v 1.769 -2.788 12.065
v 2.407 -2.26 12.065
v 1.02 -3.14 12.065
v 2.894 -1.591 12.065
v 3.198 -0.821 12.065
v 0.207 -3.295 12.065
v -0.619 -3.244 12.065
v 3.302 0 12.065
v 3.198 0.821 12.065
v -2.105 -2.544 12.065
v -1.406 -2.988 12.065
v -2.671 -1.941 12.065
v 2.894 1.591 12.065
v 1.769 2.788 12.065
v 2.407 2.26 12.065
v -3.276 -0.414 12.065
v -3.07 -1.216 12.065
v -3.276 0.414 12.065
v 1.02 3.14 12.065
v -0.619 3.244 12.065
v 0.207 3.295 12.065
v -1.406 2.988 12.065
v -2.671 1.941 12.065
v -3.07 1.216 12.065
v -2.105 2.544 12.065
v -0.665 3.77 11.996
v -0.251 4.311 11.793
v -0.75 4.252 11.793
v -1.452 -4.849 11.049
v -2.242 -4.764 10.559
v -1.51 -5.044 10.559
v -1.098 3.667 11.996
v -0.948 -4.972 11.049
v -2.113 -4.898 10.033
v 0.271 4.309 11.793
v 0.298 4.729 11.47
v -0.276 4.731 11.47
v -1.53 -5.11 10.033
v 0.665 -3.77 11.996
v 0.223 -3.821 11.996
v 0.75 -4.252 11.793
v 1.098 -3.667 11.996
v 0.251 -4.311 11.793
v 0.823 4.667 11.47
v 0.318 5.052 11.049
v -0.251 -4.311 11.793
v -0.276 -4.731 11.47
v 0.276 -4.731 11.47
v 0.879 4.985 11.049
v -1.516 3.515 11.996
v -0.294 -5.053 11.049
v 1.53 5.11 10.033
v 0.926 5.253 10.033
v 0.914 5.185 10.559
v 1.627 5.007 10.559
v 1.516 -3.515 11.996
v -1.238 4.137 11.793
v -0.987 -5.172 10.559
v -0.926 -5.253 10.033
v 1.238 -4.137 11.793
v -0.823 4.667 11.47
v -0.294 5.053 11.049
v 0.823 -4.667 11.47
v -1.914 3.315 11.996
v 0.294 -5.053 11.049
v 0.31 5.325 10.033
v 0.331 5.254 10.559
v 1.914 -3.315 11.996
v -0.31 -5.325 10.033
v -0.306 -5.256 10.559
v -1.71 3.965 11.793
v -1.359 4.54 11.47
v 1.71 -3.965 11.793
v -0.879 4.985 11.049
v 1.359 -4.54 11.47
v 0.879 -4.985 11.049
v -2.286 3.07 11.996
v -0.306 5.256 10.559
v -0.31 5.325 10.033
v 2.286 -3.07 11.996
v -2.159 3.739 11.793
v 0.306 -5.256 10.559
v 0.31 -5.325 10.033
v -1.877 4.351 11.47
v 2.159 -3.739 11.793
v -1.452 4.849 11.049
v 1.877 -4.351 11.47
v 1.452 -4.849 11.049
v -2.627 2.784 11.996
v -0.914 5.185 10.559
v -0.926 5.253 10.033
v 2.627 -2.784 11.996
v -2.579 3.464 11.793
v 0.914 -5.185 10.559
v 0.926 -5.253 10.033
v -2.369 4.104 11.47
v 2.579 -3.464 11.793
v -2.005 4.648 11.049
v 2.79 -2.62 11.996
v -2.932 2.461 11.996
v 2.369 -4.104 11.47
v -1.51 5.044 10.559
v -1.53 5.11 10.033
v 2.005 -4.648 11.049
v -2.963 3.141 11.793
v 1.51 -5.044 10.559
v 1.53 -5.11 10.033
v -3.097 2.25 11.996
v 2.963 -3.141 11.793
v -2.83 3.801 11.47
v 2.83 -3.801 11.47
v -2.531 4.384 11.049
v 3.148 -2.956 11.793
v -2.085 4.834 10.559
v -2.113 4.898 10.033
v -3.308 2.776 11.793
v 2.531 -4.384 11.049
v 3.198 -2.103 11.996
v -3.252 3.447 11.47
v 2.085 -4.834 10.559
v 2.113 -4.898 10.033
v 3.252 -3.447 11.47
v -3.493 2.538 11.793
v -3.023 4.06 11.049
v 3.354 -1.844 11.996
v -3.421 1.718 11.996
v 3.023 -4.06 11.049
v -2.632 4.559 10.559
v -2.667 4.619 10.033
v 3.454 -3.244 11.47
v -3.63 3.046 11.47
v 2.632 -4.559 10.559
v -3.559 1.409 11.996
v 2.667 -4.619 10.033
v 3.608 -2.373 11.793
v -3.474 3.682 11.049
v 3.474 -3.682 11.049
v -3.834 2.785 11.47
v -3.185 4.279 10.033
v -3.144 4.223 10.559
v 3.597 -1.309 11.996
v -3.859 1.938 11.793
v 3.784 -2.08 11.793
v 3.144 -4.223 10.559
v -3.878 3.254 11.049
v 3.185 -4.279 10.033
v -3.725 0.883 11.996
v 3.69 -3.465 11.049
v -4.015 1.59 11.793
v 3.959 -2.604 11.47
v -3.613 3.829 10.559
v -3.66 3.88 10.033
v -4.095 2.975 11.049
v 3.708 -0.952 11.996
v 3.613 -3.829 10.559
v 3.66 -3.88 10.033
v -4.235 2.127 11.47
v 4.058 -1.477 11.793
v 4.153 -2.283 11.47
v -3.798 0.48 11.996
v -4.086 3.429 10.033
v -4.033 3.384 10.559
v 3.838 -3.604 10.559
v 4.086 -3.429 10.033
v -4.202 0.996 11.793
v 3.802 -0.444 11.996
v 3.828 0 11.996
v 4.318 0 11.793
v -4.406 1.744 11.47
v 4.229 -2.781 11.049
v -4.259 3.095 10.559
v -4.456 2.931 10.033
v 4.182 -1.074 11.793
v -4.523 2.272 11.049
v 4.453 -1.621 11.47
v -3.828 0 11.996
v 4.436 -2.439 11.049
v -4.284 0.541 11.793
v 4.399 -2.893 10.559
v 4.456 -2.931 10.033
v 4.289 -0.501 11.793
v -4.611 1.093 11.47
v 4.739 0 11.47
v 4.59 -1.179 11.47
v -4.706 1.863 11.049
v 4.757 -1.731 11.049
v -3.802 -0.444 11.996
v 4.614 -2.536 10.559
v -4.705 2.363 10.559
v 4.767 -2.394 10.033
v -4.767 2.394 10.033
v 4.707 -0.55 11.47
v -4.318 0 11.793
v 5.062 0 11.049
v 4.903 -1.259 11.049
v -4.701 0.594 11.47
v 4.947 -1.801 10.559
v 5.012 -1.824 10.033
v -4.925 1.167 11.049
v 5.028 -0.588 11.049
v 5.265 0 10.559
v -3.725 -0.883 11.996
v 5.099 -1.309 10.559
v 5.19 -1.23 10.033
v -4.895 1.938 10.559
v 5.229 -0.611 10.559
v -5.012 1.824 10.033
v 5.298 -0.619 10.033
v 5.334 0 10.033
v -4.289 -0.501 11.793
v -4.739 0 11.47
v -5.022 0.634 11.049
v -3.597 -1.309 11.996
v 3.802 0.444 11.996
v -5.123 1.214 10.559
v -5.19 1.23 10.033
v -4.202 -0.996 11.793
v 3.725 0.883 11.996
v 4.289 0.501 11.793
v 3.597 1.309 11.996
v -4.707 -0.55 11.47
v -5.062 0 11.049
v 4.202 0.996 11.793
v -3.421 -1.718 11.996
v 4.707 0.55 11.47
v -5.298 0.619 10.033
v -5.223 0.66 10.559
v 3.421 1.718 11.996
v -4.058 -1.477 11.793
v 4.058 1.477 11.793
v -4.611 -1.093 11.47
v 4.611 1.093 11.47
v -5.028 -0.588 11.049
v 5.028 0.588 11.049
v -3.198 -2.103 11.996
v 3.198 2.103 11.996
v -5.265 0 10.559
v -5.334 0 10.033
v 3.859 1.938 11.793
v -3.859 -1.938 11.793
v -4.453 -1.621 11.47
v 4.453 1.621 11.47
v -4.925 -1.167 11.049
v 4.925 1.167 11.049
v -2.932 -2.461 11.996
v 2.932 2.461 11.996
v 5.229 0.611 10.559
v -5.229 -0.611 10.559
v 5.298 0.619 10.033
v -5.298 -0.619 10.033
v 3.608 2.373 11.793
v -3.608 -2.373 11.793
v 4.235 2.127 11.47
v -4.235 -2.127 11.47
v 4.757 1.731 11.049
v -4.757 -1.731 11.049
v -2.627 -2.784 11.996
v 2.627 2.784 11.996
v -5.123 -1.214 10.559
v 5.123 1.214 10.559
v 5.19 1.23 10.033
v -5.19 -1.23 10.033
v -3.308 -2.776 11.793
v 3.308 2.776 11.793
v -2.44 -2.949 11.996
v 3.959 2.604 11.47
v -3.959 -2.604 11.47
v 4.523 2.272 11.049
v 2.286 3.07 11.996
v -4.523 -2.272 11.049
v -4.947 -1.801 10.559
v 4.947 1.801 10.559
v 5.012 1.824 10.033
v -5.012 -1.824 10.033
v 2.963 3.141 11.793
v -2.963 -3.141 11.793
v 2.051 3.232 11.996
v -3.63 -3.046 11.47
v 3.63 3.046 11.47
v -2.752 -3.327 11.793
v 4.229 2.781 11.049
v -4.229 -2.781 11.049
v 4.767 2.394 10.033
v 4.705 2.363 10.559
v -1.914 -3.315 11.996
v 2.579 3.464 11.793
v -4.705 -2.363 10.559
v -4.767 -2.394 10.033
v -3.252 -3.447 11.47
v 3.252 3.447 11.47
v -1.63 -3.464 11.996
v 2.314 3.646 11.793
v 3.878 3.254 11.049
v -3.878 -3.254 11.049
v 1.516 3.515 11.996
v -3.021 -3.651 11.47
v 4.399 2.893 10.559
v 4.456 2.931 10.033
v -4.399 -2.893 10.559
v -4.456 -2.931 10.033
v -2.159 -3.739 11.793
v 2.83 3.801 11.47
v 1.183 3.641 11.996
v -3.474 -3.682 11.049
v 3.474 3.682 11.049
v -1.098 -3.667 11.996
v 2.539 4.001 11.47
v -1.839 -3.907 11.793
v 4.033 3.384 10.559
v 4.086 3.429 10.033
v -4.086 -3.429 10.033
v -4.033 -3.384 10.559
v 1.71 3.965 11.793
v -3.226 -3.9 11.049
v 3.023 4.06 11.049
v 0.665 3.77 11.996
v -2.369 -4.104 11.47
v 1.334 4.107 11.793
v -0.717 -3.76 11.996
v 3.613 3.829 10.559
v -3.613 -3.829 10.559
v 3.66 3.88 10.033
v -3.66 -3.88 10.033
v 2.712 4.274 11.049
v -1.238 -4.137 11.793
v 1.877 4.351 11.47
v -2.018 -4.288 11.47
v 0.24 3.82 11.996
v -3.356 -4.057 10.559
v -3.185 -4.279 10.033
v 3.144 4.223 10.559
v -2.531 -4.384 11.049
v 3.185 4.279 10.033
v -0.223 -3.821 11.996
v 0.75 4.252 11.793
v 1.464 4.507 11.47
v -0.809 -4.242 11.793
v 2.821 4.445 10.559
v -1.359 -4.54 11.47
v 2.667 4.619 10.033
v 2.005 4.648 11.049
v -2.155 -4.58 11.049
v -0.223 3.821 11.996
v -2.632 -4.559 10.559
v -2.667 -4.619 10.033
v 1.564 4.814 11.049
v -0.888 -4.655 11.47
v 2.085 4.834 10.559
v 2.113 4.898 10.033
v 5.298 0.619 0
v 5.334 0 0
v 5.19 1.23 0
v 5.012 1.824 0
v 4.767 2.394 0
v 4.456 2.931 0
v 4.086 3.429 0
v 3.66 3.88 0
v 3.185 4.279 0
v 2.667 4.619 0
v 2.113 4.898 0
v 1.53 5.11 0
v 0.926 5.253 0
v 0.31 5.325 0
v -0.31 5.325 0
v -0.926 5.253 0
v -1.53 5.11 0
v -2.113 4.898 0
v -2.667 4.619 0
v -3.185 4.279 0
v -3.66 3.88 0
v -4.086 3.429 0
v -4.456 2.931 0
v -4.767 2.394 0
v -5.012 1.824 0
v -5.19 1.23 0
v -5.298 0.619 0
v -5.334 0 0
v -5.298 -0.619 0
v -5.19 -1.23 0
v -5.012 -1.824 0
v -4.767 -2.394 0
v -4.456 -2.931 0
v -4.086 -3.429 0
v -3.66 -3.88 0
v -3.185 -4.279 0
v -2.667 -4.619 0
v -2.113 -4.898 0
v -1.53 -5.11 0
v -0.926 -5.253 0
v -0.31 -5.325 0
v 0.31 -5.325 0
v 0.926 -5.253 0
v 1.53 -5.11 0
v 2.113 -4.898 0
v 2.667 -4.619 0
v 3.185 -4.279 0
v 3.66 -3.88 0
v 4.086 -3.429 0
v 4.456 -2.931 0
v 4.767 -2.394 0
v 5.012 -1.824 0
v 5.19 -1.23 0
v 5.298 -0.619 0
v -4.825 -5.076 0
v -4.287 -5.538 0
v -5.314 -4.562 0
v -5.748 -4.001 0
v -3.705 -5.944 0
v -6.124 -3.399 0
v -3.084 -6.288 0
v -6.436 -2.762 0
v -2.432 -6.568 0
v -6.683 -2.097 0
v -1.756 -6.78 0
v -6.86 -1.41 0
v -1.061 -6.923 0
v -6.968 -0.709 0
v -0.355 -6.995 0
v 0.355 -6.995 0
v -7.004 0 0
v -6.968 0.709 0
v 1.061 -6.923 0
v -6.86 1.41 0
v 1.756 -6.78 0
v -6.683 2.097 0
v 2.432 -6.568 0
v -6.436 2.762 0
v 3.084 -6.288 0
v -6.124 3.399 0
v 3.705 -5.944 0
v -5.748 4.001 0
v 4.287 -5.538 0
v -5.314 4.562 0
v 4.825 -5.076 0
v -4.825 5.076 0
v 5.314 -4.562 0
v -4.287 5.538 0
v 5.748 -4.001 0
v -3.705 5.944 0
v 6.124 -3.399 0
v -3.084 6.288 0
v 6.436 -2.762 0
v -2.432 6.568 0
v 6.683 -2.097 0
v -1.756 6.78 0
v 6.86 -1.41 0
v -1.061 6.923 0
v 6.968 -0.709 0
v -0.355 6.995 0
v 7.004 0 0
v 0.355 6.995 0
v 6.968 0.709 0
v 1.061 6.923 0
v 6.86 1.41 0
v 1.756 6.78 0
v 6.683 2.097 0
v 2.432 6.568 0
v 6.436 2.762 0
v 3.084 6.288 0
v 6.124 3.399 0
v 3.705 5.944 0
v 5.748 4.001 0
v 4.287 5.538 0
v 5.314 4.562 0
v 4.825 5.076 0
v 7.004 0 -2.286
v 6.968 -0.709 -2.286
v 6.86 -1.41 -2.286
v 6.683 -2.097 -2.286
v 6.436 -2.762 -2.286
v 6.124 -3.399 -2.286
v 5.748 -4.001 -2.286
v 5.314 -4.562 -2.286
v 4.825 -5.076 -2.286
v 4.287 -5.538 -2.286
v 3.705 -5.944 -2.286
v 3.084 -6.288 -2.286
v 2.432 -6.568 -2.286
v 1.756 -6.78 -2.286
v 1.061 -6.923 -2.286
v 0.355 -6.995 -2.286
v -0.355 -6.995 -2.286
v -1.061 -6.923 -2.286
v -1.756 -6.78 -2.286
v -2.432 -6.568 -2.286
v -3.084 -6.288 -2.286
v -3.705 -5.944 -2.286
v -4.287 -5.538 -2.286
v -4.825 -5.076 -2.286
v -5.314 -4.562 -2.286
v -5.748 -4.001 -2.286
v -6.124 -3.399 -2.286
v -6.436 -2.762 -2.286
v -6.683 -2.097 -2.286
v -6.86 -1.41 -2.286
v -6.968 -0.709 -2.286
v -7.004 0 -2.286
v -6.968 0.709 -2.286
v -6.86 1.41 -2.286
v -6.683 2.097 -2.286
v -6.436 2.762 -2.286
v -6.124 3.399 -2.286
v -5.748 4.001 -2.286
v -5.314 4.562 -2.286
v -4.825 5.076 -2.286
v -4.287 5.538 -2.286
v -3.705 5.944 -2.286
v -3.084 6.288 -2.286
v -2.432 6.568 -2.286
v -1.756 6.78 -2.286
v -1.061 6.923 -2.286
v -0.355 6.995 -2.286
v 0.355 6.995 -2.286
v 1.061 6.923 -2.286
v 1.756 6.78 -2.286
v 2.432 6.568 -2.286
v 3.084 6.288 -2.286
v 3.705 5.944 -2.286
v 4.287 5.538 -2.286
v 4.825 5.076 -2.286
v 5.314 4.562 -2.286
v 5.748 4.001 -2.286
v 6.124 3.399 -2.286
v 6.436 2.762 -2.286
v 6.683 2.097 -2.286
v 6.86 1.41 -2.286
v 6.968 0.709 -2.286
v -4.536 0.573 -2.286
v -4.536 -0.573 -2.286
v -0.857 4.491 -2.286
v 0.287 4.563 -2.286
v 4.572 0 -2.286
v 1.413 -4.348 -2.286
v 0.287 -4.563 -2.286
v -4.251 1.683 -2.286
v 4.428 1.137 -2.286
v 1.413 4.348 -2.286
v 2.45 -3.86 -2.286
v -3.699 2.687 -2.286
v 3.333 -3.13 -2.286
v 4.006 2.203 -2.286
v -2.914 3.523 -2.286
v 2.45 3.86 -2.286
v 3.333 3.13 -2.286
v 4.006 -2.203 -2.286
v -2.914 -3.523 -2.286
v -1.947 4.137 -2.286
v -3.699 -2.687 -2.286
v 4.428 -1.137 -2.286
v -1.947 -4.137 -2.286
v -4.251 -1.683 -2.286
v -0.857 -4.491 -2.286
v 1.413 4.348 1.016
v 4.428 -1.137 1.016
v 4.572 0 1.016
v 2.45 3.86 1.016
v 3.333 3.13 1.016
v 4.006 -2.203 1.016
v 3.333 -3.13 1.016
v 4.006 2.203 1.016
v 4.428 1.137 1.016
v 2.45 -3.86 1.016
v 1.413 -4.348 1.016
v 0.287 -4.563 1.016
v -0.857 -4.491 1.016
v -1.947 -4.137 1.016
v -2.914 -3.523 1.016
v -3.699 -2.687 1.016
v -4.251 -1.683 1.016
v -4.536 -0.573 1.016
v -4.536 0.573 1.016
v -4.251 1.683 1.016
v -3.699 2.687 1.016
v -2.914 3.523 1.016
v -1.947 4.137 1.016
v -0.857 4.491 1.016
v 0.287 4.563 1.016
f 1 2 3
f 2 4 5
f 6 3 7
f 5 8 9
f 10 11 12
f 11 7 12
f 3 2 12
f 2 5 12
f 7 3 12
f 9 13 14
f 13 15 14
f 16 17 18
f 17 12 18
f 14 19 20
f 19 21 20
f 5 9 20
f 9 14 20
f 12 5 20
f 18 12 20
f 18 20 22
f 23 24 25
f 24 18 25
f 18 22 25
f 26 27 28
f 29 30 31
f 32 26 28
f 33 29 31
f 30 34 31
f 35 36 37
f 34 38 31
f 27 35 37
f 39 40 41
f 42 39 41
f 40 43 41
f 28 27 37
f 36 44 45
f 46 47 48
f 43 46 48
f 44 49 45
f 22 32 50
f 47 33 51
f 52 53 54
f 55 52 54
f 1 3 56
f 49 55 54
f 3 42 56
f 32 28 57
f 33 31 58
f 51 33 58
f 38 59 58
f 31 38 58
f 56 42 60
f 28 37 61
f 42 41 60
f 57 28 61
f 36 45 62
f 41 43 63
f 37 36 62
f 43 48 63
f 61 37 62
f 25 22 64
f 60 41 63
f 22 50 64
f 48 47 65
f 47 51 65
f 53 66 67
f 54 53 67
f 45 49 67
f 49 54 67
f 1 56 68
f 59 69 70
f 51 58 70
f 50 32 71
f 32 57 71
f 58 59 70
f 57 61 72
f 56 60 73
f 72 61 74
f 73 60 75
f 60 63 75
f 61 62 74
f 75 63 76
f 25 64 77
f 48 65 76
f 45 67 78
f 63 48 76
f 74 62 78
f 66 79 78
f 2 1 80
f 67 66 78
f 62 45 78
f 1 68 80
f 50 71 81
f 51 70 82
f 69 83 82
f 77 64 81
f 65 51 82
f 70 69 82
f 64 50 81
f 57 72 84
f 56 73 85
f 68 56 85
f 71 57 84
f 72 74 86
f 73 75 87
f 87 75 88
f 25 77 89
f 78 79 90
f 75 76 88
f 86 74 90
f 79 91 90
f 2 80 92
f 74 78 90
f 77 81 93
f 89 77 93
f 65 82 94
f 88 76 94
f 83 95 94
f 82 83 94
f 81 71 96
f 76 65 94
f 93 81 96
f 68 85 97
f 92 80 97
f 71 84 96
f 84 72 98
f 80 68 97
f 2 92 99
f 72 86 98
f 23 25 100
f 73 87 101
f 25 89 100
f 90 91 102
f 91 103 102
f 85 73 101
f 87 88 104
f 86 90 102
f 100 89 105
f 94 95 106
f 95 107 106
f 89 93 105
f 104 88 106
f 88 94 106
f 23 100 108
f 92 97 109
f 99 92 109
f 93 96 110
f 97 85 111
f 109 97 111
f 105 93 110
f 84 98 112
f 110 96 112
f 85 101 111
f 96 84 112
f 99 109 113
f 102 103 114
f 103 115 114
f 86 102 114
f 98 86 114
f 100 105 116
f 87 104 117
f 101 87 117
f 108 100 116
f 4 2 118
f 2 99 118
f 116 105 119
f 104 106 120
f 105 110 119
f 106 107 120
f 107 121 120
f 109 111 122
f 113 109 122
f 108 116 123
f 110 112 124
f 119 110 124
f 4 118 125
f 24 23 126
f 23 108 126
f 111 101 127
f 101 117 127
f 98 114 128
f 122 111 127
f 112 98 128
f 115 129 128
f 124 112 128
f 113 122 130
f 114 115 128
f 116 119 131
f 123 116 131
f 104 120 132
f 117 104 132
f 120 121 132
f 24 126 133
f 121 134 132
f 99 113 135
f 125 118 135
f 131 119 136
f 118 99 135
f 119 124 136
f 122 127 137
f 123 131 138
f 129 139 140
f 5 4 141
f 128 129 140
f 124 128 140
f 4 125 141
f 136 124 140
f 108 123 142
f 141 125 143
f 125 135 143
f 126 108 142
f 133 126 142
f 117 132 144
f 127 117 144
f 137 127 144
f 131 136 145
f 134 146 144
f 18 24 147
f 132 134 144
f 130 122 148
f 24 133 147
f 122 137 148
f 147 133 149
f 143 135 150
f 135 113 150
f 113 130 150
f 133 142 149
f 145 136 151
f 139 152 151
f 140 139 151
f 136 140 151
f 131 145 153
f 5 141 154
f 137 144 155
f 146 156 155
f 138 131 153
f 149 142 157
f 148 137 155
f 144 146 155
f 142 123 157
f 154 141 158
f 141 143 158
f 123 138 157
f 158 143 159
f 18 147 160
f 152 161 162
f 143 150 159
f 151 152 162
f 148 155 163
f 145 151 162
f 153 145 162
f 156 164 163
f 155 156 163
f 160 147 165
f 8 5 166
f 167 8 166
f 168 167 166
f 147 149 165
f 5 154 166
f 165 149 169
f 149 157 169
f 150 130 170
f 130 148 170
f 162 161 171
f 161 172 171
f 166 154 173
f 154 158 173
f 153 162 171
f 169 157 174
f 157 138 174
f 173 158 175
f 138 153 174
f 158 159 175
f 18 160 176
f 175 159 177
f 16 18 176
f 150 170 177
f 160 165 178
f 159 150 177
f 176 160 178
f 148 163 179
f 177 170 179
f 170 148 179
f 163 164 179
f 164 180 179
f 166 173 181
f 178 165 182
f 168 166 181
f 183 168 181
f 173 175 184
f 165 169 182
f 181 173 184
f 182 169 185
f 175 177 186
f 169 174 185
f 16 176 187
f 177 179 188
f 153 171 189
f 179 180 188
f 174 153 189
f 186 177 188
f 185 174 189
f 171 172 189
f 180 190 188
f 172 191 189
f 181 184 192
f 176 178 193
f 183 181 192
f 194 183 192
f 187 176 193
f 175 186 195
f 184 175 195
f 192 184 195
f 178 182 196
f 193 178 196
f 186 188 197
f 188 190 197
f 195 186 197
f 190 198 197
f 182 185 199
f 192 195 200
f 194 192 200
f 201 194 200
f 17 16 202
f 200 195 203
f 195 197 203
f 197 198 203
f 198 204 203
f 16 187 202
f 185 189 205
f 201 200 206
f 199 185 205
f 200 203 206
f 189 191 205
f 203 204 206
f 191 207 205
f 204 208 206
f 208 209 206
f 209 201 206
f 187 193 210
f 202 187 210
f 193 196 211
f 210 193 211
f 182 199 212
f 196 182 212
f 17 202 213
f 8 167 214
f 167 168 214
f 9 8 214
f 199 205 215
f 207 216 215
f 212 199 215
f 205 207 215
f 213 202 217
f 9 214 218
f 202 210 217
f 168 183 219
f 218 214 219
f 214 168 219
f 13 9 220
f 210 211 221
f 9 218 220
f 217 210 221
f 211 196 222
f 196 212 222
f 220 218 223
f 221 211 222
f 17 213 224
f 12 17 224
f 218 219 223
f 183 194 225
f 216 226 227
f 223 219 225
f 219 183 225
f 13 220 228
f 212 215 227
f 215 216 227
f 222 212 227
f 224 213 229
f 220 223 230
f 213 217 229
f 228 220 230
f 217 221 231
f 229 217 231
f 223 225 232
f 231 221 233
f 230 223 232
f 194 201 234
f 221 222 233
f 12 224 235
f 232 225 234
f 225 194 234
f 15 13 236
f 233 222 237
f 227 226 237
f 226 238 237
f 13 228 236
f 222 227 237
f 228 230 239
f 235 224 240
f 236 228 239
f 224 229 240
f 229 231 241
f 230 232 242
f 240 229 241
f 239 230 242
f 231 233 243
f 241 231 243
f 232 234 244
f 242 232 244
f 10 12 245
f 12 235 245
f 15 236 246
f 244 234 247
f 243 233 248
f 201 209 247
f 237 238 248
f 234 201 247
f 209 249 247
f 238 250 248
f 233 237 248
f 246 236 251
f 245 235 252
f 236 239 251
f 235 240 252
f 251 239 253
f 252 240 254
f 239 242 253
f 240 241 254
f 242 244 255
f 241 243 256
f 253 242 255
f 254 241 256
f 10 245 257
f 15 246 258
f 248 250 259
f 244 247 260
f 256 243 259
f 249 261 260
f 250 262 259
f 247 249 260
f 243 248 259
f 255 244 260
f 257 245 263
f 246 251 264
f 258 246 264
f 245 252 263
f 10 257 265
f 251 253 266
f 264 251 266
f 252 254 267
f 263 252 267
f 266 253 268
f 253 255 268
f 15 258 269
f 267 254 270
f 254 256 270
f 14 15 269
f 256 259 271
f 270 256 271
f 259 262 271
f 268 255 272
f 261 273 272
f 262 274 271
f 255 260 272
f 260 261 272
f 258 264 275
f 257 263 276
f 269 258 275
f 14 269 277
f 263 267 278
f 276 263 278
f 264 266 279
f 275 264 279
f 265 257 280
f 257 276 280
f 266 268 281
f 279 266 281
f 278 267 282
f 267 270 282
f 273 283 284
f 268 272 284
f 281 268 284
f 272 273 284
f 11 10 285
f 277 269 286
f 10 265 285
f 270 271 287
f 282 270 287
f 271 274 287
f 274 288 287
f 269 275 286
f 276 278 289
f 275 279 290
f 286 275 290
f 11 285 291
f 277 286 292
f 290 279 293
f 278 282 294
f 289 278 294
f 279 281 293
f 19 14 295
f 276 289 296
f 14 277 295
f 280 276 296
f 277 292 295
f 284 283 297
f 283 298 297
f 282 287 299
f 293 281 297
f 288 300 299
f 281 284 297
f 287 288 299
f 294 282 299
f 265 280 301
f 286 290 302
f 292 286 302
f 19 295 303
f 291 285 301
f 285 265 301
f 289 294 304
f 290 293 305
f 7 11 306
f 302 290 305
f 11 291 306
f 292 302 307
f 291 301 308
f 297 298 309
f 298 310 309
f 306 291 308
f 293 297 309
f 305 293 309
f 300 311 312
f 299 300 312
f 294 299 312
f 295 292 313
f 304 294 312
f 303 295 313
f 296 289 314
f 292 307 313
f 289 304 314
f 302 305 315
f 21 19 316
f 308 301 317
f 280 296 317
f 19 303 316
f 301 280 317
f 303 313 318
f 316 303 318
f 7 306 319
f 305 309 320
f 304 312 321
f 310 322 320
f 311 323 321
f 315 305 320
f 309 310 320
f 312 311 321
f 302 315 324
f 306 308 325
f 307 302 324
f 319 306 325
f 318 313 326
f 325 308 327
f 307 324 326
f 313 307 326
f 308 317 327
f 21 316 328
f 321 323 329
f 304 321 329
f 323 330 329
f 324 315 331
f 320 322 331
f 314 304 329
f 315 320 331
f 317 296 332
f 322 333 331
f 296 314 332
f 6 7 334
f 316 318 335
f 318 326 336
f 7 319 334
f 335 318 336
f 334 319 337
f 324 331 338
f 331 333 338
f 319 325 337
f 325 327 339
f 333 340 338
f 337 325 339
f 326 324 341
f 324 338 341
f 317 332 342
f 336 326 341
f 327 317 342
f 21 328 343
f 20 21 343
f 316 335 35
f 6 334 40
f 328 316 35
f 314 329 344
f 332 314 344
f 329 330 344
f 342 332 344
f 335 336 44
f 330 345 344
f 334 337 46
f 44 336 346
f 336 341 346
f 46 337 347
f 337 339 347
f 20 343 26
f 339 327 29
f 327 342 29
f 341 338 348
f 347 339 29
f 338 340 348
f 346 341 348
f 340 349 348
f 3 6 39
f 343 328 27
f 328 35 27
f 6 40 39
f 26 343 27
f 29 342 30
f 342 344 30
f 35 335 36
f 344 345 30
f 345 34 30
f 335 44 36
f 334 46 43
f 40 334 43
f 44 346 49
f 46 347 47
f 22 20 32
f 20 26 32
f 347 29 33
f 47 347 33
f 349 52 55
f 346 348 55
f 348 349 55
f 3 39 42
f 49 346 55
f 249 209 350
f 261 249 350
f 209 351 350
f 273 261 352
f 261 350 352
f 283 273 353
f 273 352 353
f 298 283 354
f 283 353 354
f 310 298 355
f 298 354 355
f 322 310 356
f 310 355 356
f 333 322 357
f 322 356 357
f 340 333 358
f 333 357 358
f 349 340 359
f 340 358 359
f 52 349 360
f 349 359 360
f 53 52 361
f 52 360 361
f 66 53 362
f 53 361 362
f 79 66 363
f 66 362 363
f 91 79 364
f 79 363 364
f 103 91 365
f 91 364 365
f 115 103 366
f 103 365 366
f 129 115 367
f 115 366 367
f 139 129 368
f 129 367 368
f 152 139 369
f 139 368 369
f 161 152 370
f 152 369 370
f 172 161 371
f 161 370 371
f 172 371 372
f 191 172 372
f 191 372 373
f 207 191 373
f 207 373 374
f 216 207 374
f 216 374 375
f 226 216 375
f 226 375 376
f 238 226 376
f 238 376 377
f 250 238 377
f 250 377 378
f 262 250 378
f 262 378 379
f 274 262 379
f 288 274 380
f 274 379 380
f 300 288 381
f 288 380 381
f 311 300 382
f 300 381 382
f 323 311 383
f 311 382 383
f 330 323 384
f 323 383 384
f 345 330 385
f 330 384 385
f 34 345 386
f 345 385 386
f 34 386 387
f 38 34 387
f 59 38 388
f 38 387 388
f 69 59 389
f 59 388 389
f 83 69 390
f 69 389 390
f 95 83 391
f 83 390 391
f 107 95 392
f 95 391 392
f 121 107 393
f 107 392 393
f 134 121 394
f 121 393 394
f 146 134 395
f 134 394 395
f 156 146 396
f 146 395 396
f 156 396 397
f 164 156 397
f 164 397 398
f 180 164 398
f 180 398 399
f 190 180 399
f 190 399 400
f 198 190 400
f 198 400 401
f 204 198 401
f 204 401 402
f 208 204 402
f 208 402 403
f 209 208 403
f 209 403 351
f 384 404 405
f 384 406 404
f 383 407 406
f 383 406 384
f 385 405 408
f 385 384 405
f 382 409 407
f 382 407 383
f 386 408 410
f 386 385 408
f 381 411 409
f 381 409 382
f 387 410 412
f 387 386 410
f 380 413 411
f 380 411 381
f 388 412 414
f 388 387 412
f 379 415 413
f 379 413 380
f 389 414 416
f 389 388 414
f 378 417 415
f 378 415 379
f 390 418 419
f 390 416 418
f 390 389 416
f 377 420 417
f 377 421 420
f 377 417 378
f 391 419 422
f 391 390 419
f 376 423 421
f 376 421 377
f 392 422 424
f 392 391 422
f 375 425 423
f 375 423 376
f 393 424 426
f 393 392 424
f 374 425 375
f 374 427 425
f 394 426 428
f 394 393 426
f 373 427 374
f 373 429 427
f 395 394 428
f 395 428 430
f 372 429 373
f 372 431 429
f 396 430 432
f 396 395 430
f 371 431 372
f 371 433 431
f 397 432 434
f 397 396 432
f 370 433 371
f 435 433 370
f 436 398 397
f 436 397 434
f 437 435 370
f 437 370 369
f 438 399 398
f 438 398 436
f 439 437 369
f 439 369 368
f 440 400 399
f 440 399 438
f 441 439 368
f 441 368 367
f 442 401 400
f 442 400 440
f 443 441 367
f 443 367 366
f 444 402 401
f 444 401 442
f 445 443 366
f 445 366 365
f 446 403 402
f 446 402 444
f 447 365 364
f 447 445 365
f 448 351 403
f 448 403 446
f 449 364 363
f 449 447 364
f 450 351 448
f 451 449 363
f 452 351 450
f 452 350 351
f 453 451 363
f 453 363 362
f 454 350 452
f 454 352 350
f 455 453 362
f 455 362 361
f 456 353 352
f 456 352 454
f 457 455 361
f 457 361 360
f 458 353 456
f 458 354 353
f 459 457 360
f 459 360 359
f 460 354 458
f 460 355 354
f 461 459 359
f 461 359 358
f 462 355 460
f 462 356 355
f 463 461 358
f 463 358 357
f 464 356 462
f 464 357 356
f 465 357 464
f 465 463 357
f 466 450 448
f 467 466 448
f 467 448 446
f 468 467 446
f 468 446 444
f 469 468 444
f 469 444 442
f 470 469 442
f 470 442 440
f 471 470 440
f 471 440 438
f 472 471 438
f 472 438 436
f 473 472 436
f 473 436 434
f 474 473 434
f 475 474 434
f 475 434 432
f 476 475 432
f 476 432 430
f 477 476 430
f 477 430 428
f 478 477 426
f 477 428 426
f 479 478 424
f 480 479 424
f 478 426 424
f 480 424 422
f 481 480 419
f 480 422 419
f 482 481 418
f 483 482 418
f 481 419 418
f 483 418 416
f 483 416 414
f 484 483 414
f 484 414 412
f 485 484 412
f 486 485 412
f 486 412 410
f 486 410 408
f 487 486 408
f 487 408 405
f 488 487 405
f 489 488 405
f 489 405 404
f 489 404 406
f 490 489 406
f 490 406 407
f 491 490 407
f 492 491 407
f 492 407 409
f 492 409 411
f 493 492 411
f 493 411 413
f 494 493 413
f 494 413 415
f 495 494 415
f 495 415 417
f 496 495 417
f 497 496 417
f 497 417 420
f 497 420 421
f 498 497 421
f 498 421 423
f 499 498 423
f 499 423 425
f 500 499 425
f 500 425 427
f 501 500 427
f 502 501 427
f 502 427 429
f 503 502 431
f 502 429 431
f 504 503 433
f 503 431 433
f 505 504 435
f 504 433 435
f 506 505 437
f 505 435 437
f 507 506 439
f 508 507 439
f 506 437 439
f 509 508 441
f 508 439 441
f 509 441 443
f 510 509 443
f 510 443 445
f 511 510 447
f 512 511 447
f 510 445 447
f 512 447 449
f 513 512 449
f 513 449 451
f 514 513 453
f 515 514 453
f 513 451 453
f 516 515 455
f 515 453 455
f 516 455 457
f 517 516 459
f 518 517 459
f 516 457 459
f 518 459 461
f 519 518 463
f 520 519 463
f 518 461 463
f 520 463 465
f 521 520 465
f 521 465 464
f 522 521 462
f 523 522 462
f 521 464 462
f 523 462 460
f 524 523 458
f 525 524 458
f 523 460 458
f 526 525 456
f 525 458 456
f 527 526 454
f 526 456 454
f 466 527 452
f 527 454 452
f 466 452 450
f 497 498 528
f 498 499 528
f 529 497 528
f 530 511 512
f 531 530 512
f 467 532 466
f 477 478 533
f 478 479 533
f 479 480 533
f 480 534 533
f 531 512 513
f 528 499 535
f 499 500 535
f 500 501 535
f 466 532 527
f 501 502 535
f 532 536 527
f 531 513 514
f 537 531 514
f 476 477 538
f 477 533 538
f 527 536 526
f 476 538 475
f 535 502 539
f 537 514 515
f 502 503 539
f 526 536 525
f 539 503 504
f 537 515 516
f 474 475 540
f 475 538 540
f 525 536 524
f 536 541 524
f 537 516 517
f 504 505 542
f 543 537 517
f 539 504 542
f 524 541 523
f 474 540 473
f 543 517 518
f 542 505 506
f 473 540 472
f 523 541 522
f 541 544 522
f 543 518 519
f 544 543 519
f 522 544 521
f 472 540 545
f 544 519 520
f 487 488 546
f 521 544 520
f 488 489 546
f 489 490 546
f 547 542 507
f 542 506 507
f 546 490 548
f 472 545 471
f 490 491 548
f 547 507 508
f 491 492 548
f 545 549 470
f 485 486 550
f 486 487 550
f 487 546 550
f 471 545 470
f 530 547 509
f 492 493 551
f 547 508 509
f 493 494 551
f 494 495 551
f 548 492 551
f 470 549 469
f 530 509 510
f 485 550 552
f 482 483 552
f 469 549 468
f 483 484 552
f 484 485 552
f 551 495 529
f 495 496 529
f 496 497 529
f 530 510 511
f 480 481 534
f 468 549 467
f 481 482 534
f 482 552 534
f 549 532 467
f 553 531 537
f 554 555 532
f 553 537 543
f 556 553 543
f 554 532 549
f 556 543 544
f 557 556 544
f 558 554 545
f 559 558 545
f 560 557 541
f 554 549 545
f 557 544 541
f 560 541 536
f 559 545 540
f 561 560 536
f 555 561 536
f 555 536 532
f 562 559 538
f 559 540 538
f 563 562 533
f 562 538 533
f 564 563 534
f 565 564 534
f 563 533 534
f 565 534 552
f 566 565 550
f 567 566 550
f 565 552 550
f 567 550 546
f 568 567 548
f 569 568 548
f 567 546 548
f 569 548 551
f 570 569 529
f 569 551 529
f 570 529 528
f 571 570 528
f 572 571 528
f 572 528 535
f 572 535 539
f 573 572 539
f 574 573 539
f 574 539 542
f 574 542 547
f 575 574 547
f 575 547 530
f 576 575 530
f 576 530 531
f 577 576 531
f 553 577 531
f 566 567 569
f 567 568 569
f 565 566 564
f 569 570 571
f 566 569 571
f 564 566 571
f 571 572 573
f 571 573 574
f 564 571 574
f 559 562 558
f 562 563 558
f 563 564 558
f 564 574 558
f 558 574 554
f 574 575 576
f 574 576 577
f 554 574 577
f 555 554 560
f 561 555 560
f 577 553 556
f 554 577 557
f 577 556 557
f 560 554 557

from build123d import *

# Parameters (mm, degrees)
SKETCH_R     = 5.334
PAD_DEPTH    = 12.065
SKETCH001_R  = 7.003821
PAD001_DEPTH = 2.286
SKETCH002_R  = 4.572
POCKET_DEPTH = 3.302
FILLET_R     = 2.032


with BuildPart() as part:
    # Sketch → Pad (new body)
    with BuildSketch(Plane.XY):
        Circle(SKETCH_R)
    extrude(amount=PAD_DEPTH)

    # Sketch001 → Pad001 (new body)
    with BuildSketch(Plane(origin=(0, 0, 0), x_dir=(1, 0, 0), z_dir=(0, 0, -1))):
        Circle(SKETCH001_R)
    extrude(amount=PAD001_DEPTH)

    # Sketch002 → Pocket (cut)
    with BuildSketch(Plane(origin=(0, 0, -2.286), x_dir=(1, 0, 0), z_dir=(0, 0, -1))):
        Circle(SKETCH002_R)
    extrude(amount=-POCKET_DEPTH, mode=Mode.SUBTRACT)

    # Fillet
    fillet_edges = [part.edges().sort_by_distance(p)[0] for p in [
        (-5.334, 0, 12.065),
    ]]
    fillet(fillet_edges, radius=FILLET_R)


solid = part.part
